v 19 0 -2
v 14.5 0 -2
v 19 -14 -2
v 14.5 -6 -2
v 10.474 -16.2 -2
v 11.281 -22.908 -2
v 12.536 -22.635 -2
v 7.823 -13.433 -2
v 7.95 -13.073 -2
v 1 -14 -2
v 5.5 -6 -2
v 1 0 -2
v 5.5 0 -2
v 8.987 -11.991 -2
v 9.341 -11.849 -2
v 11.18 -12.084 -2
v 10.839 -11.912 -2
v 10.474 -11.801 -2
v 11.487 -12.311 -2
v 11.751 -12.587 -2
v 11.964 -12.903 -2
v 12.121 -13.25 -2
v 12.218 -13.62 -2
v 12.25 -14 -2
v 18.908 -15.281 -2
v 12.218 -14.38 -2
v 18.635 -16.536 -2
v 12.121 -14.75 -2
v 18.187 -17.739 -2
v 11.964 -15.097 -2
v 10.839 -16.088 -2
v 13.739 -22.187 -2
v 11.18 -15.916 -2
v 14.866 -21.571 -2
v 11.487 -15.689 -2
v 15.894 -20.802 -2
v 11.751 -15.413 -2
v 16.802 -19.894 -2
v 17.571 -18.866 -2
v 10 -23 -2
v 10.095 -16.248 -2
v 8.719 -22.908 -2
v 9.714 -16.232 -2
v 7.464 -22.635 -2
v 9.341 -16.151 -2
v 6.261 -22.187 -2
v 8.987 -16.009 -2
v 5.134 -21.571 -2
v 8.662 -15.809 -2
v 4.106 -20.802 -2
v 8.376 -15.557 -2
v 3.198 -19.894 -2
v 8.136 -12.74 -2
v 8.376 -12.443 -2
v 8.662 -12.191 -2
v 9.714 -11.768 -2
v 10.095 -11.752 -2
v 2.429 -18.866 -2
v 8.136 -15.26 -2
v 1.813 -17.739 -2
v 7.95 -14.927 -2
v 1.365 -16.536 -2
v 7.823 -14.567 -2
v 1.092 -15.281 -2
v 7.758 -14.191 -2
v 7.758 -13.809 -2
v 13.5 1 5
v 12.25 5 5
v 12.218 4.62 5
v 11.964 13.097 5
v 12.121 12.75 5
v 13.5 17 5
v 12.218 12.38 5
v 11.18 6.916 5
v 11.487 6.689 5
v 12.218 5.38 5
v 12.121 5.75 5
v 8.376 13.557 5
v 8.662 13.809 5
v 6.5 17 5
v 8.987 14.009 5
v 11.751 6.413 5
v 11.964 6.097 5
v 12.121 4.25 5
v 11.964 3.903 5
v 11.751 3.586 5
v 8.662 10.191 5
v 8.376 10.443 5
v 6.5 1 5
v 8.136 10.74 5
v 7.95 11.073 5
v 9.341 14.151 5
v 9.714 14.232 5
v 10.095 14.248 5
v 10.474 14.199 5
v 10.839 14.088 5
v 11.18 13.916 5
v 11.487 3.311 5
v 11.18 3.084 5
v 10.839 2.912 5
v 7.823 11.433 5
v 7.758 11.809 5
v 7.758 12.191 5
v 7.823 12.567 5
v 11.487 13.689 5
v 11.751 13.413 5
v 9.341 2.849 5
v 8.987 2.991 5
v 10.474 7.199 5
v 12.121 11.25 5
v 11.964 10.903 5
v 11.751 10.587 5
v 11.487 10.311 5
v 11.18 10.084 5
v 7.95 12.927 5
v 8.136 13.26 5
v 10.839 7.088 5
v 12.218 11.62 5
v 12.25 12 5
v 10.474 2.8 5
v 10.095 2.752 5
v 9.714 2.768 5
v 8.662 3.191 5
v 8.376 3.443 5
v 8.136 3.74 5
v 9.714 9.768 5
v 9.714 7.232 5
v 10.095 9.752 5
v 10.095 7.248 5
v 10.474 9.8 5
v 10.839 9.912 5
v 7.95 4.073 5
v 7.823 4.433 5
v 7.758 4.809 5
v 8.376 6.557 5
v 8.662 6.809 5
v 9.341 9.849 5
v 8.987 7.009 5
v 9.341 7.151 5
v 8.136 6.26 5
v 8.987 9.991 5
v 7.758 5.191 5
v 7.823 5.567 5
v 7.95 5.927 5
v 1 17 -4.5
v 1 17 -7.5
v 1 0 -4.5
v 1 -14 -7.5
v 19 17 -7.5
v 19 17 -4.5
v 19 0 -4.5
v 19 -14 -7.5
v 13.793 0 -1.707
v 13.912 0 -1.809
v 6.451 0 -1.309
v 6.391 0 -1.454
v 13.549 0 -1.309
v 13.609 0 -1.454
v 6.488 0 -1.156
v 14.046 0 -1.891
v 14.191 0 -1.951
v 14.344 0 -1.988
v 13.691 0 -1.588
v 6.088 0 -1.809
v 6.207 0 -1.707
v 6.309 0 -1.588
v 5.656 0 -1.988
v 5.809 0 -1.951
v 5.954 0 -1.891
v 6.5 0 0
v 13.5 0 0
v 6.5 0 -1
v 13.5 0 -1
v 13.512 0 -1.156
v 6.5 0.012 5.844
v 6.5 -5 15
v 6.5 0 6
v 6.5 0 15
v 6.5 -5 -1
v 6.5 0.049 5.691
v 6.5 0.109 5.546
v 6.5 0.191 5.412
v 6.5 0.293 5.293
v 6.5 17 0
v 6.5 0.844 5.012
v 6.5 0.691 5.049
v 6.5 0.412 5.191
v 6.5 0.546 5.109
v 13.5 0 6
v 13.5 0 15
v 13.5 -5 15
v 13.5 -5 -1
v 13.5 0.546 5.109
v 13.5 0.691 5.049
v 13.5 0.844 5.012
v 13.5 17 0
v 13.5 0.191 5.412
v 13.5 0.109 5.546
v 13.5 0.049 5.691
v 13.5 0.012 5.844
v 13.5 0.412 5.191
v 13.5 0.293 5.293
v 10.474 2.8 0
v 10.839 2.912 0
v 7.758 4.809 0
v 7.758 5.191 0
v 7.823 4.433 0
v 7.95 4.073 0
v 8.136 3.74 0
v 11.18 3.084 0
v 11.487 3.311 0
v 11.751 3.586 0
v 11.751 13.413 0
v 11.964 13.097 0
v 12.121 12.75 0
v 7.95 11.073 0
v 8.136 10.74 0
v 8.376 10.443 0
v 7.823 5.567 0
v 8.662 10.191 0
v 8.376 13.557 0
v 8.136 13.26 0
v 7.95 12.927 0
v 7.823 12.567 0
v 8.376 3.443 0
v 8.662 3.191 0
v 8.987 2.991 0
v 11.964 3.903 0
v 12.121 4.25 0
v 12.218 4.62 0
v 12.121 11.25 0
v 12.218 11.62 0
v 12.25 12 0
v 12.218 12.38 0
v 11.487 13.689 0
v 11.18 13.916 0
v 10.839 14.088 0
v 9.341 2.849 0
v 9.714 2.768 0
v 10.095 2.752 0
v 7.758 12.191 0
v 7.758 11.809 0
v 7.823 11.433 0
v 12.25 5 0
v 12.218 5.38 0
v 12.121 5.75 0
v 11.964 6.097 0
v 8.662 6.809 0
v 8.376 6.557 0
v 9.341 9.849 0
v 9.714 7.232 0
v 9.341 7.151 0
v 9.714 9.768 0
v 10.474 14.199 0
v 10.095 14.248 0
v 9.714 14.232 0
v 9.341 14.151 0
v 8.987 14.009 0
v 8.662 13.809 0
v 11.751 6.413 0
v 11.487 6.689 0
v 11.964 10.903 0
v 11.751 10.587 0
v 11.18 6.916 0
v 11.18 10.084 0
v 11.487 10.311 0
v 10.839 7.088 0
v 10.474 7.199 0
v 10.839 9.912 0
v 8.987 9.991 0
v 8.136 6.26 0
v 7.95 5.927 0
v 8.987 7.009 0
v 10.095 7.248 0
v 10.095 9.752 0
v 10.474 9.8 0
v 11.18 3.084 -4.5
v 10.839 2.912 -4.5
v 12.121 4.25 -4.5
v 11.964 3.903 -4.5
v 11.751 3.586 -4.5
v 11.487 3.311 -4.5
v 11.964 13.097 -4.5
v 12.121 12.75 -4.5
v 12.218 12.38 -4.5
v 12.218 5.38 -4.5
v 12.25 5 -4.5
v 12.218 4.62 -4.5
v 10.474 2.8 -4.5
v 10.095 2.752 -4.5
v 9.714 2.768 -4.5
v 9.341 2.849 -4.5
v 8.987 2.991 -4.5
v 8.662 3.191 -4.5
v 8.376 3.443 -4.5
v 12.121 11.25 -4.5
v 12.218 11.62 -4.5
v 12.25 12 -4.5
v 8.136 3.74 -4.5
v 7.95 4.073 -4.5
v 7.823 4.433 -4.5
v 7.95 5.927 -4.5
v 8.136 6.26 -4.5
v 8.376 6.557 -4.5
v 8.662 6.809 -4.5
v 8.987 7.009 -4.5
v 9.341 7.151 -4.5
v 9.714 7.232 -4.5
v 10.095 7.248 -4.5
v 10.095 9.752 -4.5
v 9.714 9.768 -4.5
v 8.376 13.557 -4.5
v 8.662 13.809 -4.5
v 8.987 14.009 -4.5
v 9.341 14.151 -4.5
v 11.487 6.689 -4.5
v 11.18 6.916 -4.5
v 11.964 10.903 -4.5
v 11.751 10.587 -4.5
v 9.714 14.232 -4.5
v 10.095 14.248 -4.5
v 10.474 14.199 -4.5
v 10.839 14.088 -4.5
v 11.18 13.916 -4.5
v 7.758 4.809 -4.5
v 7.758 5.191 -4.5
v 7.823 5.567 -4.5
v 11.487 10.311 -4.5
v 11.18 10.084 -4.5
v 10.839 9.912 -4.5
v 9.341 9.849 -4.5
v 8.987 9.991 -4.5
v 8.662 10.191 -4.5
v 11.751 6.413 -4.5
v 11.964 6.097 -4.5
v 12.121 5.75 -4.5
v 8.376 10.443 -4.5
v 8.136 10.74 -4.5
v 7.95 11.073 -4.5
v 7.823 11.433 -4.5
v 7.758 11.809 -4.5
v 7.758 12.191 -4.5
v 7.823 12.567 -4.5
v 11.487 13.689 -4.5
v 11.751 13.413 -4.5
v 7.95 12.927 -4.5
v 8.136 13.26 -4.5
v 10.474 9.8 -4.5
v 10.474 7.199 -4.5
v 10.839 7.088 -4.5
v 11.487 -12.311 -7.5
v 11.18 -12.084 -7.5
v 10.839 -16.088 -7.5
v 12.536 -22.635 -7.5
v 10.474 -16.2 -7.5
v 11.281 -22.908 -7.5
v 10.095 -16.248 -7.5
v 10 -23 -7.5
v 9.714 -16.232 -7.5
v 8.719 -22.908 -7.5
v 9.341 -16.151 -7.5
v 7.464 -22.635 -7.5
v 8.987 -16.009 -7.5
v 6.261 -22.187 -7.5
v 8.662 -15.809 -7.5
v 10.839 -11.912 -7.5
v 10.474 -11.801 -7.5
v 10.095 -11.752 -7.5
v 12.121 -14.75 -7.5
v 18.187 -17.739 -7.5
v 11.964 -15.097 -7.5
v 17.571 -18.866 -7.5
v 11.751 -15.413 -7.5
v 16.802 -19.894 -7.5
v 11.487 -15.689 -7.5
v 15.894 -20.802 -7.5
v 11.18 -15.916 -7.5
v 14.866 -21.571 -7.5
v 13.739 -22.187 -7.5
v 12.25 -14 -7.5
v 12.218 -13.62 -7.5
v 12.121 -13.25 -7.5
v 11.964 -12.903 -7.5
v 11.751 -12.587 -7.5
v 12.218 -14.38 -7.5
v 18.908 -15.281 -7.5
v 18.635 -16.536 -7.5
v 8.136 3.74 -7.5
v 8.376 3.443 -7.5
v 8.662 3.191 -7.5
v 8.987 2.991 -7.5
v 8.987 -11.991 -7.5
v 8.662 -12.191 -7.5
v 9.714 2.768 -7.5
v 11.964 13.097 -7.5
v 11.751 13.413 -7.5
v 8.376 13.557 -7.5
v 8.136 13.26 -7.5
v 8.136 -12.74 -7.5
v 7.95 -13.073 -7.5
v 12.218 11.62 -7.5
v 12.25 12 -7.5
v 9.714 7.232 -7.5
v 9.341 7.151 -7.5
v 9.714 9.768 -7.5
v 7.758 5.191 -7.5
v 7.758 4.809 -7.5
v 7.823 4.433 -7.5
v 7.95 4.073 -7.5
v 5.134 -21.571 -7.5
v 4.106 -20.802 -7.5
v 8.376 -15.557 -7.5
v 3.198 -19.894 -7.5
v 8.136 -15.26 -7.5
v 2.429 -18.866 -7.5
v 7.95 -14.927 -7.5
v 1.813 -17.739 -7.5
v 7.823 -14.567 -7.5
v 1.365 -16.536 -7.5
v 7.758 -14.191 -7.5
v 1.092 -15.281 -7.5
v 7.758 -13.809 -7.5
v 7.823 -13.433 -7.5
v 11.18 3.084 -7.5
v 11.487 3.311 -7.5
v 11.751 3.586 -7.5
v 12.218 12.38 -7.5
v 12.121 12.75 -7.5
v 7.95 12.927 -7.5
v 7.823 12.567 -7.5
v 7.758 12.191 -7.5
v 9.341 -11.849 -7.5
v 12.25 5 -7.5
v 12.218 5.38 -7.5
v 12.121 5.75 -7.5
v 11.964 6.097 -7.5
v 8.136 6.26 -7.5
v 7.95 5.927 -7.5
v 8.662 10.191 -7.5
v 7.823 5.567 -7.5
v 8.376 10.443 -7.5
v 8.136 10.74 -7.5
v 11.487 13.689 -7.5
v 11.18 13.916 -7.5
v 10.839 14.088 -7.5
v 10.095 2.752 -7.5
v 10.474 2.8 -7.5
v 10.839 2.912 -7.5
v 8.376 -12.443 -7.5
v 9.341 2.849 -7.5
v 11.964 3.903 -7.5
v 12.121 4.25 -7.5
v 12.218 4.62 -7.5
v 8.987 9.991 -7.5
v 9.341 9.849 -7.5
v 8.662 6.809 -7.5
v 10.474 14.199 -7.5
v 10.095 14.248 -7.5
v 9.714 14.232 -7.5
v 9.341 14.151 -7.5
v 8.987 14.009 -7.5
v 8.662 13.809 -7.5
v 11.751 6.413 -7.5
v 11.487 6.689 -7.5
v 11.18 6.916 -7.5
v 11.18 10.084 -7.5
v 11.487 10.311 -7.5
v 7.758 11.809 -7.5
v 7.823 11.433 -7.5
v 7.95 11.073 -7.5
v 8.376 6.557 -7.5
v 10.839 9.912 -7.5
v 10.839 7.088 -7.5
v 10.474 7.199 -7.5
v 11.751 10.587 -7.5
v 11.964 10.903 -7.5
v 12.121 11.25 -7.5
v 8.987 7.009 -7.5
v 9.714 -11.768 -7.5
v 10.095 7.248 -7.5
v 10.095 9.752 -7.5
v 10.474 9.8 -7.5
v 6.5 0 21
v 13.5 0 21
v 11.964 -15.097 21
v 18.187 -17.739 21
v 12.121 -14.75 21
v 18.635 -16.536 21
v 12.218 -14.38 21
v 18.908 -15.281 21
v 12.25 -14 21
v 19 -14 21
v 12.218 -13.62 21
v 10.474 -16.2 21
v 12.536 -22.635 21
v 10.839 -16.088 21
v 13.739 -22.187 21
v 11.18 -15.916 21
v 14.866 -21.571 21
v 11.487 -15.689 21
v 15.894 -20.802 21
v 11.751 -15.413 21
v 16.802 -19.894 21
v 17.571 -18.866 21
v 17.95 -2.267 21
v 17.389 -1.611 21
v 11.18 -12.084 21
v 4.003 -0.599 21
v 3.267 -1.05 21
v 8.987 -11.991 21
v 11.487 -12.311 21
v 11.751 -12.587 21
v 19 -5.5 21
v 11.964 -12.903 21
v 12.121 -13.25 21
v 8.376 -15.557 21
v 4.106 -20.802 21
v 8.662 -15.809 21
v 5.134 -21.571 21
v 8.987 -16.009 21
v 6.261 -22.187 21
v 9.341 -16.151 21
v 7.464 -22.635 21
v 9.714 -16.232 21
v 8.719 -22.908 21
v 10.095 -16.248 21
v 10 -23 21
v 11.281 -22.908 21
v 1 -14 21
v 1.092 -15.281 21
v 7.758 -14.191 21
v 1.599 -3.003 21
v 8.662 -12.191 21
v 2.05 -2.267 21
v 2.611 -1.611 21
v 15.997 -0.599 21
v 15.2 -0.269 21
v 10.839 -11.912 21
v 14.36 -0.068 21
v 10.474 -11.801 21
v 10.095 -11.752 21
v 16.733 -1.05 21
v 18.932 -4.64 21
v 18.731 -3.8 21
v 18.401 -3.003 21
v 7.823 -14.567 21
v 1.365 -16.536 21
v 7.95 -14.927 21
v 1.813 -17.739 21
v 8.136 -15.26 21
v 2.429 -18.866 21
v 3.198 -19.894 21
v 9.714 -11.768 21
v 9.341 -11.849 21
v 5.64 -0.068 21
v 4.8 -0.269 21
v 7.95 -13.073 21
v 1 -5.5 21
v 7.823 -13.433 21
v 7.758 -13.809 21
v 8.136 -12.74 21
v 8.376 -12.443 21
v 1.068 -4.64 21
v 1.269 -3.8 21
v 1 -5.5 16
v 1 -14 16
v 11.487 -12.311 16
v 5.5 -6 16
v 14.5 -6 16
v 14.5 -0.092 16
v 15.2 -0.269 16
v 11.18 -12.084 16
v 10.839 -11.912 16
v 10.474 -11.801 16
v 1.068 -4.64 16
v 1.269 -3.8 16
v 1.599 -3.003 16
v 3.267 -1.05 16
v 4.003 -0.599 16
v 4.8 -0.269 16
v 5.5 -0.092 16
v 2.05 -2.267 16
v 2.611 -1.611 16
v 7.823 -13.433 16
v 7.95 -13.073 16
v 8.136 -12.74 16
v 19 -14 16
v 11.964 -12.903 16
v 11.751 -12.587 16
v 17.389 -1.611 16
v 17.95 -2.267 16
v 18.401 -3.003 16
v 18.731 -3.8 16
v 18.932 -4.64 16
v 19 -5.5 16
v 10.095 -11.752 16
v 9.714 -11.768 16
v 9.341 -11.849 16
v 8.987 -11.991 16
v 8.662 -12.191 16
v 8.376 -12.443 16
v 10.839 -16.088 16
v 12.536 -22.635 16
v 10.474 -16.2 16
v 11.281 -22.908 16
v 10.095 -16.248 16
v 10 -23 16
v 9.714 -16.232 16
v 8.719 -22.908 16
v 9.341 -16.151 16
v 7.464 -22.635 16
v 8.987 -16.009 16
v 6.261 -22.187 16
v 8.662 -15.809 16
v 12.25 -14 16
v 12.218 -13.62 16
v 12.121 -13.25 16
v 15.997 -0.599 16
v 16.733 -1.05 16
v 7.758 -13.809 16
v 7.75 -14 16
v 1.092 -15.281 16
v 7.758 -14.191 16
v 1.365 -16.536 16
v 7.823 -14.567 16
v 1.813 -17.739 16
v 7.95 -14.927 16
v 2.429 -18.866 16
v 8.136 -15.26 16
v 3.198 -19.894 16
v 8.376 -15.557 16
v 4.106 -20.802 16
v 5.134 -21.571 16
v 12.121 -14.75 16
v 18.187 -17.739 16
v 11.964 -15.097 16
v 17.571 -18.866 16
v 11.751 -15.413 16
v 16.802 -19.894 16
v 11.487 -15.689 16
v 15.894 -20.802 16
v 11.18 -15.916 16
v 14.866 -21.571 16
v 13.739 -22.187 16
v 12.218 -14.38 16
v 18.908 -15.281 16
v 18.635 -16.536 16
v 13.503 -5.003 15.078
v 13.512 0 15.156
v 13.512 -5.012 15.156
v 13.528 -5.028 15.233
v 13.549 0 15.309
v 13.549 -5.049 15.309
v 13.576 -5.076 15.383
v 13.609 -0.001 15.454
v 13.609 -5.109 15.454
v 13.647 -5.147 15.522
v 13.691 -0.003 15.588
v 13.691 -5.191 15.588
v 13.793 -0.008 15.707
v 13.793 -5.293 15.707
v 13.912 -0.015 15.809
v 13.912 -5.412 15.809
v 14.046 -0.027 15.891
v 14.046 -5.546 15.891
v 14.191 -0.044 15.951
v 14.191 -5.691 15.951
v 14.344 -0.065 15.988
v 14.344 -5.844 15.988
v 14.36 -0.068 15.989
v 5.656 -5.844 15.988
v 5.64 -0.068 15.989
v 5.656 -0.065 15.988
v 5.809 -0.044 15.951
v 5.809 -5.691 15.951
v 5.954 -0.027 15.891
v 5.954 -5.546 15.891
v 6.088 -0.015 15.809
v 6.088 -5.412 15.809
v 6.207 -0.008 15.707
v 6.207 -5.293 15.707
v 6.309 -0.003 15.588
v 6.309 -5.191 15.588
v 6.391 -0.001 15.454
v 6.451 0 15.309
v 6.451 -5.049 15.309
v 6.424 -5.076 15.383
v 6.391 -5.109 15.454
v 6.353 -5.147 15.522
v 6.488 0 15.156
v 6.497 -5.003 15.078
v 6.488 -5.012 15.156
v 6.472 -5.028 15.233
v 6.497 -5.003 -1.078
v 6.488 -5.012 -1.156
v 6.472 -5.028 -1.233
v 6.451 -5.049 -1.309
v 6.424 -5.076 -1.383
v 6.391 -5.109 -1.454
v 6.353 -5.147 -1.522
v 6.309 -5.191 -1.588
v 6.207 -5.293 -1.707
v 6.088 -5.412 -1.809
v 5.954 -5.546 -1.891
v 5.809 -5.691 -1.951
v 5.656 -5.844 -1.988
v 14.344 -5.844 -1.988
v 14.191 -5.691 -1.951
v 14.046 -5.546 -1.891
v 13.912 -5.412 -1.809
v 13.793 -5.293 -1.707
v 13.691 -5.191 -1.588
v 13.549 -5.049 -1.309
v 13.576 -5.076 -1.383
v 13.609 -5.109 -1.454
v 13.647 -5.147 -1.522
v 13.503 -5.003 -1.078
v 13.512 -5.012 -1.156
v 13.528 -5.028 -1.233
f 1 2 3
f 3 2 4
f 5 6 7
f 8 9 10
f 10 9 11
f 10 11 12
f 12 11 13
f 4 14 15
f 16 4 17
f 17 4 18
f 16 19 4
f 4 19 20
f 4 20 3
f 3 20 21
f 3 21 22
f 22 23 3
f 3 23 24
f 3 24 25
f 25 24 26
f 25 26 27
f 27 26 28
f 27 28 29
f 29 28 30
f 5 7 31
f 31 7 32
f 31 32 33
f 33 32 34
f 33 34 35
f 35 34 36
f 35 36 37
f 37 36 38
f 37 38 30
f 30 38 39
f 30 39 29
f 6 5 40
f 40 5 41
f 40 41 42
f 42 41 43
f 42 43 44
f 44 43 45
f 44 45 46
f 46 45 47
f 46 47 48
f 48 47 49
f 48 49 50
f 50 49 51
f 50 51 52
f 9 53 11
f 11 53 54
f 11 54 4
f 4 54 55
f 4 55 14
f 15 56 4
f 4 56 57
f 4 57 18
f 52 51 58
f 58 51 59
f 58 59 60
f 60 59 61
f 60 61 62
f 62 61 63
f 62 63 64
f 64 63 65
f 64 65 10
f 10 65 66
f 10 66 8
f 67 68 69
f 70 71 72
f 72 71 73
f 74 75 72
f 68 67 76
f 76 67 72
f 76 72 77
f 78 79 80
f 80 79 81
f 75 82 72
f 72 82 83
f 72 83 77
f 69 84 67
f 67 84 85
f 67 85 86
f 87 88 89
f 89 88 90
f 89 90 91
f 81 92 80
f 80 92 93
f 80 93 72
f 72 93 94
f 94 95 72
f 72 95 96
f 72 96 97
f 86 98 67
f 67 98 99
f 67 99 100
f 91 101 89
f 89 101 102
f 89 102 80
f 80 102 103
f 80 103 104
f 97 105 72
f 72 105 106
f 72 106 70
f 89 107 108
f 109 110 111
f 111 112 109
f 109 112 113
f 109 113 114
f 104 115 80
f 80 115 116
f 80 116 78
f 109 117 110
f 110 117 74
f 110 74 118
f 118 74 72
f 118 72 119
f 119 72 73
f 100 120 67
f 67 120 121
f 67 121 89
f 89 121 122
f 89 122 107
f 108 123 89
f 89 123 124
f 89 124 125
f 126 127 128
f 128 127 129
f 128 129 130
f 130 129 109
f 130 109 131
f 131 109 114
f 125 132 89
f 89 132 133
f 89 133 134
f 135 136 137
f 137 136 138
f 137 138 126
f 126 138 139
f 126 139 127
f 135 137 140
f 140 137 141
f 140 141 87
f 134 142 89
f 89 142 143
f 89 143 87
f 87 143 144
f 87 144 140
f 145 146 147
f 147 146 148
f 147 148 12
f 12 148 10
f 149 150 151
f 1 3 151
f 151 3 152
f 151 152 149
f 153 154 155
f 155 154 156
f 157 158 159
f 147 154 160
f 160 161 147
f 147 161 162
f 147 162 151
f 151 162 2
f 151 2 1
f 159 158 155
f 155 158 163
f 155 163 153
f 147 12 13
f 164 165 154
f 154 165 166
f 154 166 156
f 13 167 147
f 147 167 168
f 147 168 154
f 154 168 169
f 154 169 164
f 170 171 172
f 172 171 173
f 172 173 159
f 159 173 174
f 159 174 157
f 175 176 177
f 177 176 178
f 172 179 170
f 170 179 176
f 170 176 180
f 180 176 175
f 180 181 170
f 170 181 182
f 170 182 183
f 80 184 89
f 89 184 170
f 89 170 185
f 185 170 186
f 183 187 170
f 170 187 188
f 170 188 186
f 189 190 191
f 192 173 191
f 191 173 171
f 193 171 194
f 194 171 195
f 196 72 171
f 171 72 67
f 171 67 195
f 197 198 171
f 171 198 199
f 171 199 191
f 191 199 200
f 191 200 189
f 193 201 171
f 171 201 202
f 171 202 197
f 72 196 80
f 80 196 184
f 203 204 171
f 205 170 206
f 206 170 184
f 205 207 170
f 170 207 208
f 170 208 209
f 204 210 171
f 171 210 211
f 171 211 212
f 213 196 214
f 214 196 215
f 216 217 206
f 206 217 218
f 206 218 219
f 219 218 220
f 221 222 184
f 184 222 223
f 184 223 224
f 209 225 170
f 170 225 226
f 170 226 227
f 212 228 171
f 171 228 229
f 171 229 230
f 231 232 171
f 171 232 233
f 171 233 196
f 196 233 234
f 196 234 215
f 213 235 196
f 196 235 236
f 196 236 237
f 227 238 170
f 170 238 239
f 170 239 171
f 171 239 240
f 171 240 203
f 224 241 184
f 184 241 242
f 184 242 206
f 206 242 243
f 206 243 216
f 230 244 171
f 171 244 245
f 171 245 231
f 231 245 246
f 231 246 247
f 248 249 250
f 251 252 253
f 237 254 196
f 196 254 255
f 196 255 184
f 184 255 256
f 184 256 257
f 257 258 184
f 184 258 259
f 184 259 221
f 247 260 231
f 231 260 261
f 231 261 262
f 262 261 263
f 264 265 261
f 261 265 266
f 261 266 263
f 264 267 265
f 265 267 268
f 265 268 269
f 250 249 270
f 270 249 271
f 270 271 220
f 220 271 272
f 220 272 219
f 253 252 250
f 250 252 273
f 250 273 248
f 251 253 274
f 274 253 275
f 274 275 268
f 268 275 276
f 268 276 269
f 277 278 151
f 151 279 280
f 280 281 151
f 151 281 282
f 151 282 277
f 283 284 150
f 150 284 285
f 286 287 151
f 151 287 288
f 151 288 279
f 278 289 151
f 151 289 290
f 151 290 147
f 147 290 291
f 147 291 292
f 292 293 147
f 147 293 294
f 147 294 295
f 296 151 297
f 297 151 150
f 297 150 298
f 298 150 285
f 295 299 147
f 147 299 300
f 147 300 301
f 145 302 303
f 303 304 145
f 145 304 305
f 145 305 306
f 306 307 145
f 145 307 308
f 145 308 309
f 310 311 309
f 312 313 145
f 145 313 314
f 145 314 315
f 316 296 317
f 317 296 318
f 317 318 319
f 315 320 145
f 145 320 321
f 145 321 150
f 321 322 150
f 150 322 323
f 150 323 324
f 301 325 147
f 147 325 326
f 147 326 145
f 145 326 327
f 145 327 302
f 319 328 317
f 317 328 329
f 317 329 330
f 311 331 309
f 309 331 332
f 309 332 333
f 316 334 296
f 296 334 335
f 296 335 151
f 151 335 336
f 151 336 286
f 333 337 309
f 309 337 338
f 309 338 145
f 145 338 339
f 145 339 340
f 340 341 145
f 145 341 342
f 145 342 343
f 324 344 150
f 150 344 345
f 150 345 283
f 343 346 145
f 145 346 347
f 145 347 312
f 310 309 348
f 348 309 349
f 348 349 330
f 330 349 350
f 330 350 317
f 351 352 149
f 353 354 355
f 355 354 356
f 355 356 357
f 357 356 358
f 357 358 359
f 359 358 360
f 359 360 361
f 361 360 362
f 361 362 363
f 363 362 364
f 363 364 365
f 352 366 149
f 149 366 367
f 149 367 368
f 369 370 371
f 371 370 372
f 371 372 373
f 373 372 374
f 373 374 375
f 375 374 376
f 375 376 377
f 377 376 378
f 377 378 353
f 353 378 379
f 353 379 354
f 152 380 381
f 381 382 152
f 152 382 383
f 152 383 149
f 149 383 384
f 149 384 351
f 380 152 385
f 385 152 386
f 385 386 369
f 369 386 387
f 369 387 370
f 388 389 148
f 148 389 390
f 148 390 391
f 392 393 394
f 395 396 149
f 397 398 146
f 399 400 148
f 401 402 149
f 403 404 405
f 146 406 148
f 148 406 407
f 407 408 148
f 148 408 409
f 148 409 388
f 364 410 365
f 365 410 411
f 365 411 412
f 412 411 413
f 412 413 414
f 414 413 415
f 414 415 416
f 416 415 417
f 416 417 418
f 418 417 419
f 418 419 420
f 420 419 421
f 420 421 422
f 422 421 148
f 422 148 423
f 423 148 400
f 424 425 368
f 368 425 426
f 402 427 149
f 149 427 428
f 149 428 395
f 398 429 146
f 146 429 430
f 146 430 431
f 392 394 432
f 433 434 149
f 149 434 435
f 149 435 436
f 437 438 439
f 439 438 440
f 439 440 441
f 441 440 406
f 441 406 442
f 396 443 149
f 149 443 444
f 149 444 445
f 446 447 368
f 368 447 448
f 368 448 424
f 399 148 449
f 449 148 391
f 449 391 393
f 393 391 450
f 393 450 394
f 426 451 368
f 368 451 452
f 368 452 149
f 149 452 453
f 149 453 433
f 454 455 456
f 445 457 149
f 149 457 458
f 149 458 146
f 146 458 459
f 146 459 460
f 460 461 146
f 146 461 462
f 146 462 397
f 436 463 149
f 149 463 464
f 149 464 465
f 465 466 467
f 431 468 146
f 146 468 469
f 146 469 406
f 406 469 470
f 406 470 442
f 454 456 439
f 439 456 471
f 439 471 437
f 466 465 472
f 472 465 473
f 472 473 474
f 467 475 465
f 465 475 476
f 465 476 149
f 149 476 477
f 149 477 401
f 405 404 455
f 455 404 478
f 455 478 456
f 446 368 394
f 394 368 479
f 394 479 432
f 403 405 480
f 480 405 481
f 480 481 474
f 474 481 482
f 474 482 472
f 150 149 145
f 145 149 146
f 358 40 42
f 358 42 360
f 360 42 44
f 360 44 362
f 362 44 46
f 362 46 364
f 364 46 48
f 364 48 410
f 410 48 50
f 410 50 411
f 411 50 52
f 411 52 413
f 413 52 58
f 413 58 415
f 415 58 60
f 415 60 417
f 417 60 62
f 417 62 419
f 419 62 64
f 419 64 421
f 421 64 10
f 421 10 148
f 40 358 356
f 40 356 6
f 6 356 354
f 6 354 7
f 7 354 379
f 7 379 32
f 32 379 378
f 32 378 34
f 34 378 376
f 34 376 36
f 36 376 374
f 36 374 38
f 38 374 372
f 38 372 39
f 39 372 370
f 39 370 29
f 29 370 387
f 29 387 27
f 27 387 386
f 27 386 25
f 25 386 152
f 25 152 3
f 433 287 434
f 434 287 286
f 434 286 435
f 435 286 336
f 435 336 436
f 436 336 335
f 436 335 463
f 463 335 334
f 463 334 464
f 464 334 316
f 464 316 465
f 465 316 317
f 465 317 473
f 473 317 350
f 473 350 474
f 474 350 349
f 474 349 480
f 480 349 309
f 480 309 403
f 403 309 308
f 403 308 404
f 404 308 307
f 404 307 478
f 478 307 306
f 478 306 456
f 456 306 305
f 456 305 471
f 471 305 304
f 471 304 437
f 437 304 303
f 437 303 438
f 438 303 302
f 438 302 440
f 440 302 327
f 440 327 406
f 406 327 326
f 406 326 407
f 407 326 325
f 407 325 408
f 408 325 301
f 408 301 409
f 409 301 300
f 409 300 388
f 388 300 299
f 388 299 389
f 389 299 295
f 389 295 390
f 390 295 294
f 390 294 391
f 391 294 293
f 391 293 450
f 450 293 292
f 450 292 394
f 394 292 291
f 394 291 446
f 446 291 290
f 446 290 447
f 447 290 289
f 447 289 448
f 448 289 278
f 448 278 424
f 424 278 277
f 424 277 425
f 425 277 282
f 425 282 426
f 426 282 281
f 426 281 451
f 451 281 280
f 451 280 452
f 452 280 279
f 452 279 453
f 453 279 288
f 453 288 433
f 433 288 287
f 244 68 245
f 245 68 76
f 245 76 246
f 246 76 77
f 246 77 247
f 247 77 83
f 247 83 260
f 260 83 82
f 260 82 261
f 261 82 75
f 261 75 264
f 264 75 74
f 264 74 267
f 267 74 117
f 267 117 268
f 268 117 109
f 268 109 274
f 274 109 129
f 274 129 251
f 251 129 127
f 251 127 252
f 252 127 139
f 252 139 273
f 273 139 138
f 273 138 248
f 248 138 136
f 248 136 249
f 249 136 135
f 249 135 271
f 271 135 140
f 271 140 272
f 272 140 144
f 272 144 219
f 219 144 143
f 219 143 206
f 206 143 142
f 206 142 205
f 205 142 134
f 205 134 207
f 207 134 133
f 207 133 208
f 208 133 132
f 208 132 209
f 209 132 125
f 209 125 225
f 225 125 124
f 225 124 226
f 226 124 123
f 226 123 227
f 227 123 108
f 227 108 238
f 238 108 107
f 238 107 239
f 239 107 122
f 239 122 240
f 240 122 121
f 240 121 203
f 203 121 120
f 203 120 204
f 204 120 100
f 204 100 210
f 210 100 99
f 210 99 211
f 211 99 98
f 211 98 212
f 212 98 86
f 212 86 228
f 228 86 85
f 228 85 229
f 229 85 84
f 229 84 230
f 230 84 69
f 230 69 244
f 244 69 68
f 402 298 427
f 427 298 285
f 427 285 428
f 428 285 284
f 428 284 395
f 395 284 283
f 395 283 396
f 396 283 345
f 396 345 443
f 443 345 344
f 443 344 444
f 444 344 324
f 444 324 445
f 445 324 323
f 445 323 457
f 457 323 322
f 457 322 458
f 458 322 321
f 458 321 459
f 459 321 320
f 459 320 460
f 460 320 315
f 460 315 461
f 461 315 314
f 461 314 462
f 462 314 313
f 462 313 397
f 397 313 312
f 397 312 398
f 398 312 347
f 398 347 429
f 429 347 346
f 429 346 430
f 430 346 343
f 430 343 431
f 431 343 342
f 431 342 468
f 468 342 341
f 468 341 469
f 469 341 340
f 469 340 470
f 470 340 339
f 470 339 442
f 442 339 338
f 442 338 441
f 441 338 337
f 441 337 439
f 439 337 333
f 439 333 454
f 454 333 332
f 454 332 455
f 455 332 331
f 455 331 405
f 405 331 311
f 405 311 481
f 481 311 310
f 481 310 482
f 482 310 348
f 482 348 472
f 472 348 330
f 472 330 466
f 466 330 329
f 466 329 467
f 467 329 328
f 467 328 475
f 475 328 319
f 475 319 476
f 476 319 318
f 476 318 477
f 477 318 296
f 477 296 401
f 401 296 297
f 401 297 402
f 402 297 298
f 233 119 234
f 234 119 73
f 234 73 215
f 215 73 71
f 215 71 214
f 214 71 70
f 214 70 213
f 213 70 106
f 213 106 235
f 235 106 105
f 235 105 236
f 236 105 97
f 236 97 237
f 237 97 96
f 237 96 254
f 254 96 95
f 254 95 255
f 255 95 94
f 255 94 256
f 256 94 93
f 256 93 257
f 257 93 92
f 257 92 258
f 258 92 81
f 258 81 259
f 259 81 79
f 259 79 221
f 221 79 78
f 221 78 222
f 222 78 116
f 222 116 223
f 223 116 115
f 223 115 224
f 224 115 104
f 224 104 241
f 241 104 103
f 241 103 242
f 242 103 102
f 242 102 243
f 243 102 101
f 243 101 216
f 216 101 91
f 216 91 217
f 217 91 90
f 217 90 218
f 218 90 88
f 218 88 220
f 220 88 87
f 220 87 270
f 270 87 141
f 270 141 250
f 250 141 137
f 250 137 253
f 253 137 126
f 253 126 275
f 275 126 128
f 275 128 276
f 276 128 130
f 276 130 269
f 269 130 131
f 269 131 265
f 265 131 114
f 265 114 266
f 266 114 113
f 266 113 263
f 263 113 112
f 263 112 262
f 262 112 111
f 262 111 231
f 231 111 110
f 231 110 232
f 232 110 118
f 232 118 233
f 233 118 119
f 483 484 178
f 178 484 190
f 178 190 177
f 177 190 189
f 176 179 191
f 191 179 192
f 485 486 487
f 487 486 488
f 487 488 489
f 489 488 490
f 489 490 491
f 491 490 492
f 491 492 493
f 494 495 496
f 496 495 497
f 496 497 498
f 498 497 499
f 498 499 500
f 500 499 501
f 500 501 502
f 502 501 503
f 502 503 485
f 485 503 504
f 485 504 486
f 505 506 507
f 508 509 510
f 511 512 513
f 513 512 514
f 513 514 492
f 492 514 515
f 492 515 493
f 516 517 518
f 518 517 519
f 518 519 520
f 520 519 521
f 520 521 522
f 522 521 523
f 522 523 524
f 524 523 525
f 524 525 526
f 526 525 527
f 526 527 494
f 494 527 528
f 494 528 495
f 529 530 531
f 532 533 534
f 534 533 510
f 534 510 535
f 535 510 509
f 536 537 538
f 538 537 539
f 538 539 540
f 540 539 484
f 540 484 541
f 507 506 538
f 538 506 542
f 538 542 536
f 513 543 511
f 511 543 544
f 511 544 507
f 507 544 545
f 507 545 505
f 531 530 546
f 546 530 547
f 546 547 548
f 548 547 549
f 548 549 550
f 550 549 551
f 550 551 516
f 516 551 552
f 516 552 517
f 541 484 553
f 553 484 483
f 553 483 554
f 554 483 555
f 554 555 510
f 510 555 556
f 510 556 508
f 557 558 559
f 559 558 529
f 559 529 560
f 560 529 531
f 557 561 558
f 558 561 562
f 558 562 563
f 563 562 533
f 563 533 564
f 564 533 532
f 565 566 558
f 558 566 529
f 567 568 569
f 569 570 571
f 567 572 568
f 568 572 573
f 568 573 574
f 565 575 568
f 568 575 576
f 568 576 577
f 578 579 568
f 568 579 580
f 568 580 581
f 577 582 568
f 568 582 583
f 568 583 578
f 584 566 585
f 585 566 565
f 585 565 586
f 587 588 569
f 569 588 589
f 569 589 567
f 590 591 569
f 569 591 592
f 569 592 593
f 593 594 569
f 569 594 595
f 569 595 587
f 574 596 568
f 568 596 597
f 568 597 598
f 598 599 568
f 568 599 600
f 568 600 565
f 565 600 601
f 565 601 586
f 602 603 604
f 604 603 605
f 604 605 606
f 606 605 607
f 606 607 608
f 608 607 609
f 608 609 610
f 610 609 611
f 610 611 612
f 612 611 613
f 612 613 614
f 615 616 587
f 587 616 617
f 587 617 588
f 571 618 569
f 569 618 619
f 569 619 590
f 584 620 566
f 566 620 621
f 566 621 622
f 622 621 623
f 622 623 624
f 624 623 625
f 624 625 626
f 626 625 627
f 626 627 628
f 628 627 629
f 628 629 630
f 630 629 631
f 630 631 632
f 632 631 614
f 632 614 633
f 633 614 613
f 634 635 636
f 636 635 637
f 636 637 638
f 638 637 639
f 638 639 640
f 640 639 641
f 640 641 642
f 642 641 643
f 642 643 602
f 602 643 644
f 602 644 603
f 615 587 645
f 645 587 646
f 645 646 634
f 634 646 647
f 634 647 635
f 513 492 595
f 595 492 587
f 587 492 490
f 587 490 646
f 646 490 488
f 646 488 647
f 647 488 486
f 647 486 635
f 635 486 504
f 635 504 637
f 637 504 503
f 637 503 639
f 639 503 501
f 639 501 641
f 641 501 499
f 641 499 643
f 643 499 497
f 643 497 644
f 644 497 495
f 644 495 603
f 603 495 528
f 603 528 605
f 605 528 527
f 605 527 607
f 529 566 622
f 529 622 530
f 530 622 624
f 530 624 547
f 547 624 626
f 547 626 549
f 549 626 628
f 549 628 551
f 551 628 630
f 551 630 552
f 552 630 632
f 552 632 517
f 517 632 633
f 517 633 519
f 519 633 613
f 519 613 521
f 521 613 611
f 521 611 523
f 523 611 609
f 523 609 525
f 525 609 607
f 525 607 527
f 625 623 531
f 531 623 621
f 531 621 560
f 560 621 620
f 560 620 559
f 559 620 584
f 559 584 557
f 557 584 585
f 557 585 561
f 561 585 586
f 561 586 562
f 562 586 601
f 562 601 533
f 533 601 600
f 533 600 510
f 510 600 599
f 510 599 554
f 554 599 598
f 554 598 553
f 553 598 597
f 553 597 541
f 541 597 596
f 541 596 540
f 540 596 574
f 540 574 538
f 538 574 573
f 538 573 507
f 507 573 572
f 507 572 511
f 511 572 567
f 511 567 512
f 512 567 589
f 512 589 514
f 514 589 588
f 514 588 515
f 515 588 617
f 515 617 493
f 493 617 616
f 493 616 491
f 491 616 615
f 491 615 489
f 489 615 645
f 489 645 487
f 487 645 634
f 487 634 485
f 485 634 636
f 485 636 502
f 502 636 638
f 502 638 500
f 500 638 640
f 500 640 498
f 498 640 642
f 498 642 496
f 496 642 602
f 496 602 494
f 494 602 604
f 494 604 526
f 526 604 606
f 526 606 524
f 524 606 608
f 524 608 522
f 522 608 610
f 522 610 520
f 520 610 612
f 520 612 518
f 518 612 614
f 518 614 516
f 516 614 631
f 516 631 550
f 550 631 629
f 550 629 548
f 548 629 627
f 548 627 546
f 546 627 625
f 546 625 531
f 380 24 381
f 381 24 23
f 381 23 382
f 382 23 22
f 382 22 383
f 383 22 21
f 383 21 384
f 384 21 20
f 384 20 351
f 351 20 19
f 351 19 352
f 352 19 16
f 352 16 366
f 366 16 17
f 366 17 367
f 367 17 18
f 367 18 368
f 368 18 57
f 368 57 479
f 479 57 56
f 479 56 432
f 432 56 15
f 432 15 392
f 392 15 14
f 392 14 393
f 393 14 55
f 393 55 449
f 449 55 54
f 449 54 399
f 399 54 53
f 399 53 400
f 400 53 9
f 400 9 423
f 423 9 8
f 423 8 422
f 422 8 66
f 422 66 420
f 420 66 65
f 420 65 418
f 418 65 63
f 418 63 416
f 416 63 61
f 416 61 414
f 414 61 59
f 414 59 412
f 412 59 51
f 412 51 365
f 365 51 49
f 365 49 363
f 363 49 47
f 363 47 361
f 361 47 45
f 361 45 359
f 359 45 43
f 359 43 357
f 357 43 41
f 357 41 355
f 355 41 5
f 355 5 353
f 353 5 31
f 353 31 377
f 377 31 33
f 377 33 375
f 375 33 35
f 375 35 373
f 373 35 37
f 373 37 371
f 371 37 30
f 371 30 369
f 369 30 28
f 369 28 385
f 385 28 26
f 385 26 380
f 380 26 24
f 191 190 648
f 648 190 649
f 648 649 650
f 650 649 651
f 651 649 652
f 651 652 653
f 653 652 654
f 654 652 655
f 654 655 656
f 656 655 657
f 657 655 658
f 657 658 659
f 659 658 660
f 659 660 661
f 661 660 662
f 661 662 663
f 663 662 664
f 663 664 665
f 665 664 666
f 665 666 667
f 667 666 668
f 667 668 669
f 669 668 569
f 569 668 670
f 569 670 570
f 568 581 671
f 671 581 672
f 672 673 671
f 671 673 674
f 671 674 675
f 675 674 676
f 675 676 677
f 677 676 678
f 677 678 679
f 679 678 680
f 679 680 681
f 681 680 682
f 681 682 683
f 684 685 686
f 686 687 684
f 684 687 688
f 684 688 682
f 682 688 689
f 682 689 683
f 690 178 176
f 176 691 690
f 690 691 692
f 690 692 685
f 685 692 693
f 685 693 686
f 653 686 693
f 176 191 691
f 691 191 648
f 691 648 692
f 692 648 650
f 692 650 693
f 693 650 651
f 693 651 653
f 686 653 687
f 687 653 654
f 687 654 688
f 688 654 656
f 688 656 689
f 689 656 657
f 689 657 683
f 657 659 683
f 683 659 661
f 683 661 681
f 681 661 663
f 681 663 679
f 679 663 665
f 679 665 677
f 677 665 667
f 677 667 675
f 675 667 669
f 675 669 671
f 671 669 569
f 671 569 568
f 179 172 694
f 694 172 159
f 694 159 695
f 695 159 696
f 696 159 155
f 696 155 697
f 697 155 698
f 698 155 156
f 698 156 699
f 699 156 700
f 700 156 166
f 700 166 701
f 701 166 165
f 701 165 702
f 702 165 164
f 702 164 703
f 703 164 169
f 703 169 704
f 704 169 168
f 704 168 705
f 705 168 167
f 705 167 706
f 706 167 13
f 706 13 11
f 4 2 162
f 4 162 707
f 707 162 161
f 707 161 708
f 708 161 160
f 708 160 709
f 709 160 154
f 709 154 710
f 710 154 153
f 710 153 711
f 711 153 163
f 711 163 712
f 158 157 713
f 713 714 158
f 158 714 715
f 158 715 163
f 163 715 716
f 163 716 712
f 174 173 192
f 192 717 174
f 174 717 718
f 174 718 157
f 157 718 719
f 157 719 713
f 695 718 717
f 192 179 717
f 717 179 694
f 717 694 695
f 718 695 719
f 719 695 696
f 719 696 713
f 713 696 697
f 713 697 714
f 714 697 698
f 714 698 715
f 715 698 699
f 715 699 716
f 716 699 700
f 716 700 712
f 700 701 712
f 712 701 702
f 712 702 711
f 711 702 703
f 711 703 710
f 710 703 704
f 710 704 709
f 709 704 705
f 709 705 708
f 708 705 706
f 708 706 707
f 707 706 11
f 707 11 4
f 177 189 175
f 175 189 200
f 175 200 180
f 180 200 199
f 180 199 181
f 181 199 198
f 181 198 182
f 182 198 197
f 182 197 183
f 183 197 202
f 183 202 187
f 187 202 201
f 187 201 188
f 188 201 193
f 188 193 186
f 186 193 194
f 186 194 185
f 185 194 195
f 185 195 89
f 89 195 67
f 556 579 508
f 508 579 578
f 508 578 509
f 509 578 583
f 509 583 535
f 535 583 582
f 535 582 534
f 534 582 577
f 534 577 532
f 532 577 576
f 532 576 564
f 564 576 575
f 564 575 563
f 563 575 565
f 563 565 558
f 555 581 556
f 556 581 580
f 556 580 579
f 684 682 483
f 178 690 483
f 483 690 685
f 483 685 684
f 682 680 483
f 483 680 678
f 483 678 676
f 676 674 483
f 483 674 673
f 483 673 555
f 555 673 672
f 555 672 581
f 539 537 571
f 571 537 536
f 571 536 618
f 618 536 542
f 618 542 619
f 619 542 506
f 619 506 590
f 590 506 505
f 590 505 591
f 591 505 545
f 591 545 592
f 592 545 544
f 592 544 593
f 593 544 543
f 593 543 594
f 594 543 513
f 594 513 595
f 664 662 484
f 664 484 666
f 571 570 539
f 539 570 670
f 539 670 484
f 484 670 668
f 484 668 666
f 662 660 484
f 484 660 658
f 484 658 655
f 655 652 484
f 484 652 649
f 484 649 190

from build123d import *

# Parameters (mm, degrees)
ESQUISSE1_W             = 20
ESQUISSE1_H             = 17
ESQUISSE1_R             = 2.1
BOSS_EXTRU_1_DEPTH      = 5
ESQUISSE2_W             = 18
ESQUISSE2_H             = 3
BOSS_EXTRU_3_DEPTH      = 23
ESQUISSE5_W             = 6.5
ESQUISSE5_H             = 17
ENL_V_MAT_EXTRU_3_DEPTH = 18
ESQUISSE10_W            = 7
ESQUISSE10_H            = 3
BOSS_EXTRU_6_DEPTH      = 10
ESQUISSE11_W            = 5.5
ESQUISSE11_H            = 2.5
ESQUISSE11_W_2          = 7
ESQUISSE11_H_2          = 0.5
BOSS_EXTRU_7_DEPTH      = 17
ESQUISSE12_W            = 18
ESQUISSE12_H            = 2.5
BOSS_EXTRU_8_DEPTH      = 23
CONG_3_R                = 9
ESQUISSE20_R            = 2.25
ENL_V_MAT_EXTRU_7_DEPTH = 18
ESQUISSE22_W            = 7
ESQUISSE22_H            = 5
BOSS_EXTRU_9_DEPTH      = 23
ESQUISSE27_W            = 5.5
ESQUISSE27_H            = 5
ESQUISSE27_W_2          = 7
BOSS_EXTRU_10_DEPTH     = 23
CONG_4_R                = 9
ESQUISSE28_R            = 2.25
ENL_V_MAT_EXTRU_8_DEPTH = 44
CONG_5_R                = 1
CONG_6_R                = 5.5


with BuildPart() as part:
    # Esquisse1 → Boss.-Extru.1 (new body)
    with BuildSketch(Plane.XY):
        with Locations((10, 8.5)):
            Rectangle(ESQUISSE1_W, ESQUISSE1_H)
        with Locations((10, 5)):
            Circle(ESQUISSE1_R, mode=Mode.SUBTRACT)
        with Locations((10, 12)):
            Circle(ESQUISSE1_R, mode=Mode.SUBTRACT)
    extrude(amount=BOSS_EXTRU_1_DEPTH)

    # Esquisse5 → Enlèv. mat.-Extru.3 (cut)
    with BuildSketch(Plane.XY.offset(5)):
        with Locations((16.75, 8.5)):
            Rectangle(ESQUISSE5_W, ESQUISSE5_H)
        with Locations((3.25, 8.5)):
            Rectangle(ESQUISSE5_W, ESQUISSE5_H)
    extrude(amount=-ENL_V_MAT_EXTRU_3_DEPTH, mode=Mode.SUBTRACT)



with BuildPart() as body_2:
    # Esquisse2 → Boss.-Extru.3 (new body)
    with BuildSketch(Plane.XZ):
        with Locations((10, -3.5)):
            Rectangle(ESQUISSE2_W, ESQUISSE2_H)
    extrude(amount=BOSS_EXTRU_3_DEPTH)


with BuildPart() as part_1:
    add(part.part)

    add(body_2.part)  # Boss.-Extru.6 merges body 2
    # Esquisse10 → Boss.-Extru.6 (add)
    with BuildSketch(Plane.XY.offset(5)):
        with Locations((10, -1.5)):
            Rectangle(ESQUISSE10_W, ESQUISSE10_H)
    extrude(amount=-BOSS_EXTRU_6_DEPTH)

    # Esquisse11 → Boss.-Extru.7 (add)
    with BuildSketch(Plane(origin=(0, 0, 0), x_dir=(1, 0, 0), z_dir=(0, 1, 0))):
        with Locations((3.75, 6.25)):
            Rectangle(ESQUISSE11_W, ESQUISSE11_H)
        with Locations((10, 6.25)):
            Rectangle(ESQUISSE11_W_2, ESQUISSE11_H)
        with Locations((16.25, 6.25)):
            Rectangle(ESQUISSE11_W, ESQUISSE11_H)
        with Locations((3.75, 4.75)):
            Rectangle(ESQUISSE11_W, ESQUISSE11_H_2)
        with Locations((10, 4.75)):
            Rectangle(ESQUISSE11_W_2, ESQUISSE11_H_2)
        with Locations((16.25, 4.75)):
            Rectangle(ESQUISSE11_W, ESQUISSE11_H_2)
    extrude(amount=BOSS_EXTRU_7_DEPTH)

    # Esquisse12 → Boss.-Extru.8 (add)
    with BuildSketch(Plane.XZ):
        with Locations((10, -6.25)):
            Rectangle(ESQUISSE12_W, ESQUISSE12_H)
    extrude(amount=BOSS_EXTRU_8_DEPTH)

    # Congé3
    cong_3_edges = [part_1.edges().sort_by_distance(p)[0] for p in [
        (19, -23, -4.75),
        (1, -23, -4.75),
    ]]
    fillet(cong_3_edges, radius=CONG_3_R - 0.0001)  # a hair under: the kernel refuses the full size

    # Esquisse20 → Enlèv. mat.-Extru.7 (cut)
    with BuildSketch(Plane.XY.offset(5)):
        with Locations((10, 5)):
            Circle(ESQUISSE20_R)
        with Locations((10, 12)):
            Circle(ESQUISSE20_R)
    extrude(amount=-ENL_V_MAT_EXTRU_7_DEPTH, mode=Mode.SUBTRACT)

    # Esquisse22 → Boss.-Extru.9 (add)
    with BuildSketch(Plane.XY.offset(-2)):
        with Locations((10, -2.5)):
            Rectangle(ESQUISSE22_W, ESQUISSE22_H)
    extrude(amount=BOSS_EXTRU_9_DEPTH)

    # Esquisse27 → Boss.-Extru.10 (add)
    with BuildSketch(Plane(origin=(0, 0, 0), x_dir=(1, 0, 0), z_dir=(0, 1, 0))):
        with Locations((3.75, -18.5)):
            Rectangle(ESQUISSE27_W, ESQUISSE27_H)
        with Locations((16.25, -18.5)):
            Rectangle(ESQUISSE27_W, ESQUISSE27_H)
        with Locations((10, -18.5)):
            Rectangle(ESQUISSE27_W_2, ESQUISSE27_H)
    extrude(amount=-BOSS_EXTRU_10_DEPTH)

    # Congé4
    cong_4_edges = [part_1.edges().sort_by_distance(p)[0] for p in [
        (1, -23, 18.5),
        (19, -23, 18.5),
    ]]
    fillet(cong_4_edges, radius=CONG_4_R - 0.0001)  # a hair under: the kernel refuses the full size

    # Esquisse28 → Enlèv. mat.-Extru.8 (cut)
    with BuildSketch(Plane.XY.offset(21)):
        with Locations((10, -14)):
            Circle(ESQUISSE28_R)
    extrude(amount=-ENL_V_MAT_EXTRU_8_DEPTH, mode=Mode.SUBTRACT)

    # Congé5
    cong_5_edges = [part_1.edges().sort_by_distance(p)[0] for p in [
        (10, 0, 5),
        (10, -5, -2),
        (10, -5, 16),
        (6.5, -2.5, 16),
        (13.5, -2.5, 16),
        (6.5, -2.5, -2),
        (13.5, -2.5, -2),
    ]]
    fillet(cong_5_edges, radius=CONG_5_R)

    # Congé6
    cong_6_edges = [part_1.edges().sort_by_distance(p)[0] for p in [
        (1, 0, 18.5),
        (19, 0, 18.5),
    ]]
    fillet(cong_6_edges, radius=CONG_6_R - 0.0001)  # a hair under: the kernel refuses the full size


solid = part_1.part
